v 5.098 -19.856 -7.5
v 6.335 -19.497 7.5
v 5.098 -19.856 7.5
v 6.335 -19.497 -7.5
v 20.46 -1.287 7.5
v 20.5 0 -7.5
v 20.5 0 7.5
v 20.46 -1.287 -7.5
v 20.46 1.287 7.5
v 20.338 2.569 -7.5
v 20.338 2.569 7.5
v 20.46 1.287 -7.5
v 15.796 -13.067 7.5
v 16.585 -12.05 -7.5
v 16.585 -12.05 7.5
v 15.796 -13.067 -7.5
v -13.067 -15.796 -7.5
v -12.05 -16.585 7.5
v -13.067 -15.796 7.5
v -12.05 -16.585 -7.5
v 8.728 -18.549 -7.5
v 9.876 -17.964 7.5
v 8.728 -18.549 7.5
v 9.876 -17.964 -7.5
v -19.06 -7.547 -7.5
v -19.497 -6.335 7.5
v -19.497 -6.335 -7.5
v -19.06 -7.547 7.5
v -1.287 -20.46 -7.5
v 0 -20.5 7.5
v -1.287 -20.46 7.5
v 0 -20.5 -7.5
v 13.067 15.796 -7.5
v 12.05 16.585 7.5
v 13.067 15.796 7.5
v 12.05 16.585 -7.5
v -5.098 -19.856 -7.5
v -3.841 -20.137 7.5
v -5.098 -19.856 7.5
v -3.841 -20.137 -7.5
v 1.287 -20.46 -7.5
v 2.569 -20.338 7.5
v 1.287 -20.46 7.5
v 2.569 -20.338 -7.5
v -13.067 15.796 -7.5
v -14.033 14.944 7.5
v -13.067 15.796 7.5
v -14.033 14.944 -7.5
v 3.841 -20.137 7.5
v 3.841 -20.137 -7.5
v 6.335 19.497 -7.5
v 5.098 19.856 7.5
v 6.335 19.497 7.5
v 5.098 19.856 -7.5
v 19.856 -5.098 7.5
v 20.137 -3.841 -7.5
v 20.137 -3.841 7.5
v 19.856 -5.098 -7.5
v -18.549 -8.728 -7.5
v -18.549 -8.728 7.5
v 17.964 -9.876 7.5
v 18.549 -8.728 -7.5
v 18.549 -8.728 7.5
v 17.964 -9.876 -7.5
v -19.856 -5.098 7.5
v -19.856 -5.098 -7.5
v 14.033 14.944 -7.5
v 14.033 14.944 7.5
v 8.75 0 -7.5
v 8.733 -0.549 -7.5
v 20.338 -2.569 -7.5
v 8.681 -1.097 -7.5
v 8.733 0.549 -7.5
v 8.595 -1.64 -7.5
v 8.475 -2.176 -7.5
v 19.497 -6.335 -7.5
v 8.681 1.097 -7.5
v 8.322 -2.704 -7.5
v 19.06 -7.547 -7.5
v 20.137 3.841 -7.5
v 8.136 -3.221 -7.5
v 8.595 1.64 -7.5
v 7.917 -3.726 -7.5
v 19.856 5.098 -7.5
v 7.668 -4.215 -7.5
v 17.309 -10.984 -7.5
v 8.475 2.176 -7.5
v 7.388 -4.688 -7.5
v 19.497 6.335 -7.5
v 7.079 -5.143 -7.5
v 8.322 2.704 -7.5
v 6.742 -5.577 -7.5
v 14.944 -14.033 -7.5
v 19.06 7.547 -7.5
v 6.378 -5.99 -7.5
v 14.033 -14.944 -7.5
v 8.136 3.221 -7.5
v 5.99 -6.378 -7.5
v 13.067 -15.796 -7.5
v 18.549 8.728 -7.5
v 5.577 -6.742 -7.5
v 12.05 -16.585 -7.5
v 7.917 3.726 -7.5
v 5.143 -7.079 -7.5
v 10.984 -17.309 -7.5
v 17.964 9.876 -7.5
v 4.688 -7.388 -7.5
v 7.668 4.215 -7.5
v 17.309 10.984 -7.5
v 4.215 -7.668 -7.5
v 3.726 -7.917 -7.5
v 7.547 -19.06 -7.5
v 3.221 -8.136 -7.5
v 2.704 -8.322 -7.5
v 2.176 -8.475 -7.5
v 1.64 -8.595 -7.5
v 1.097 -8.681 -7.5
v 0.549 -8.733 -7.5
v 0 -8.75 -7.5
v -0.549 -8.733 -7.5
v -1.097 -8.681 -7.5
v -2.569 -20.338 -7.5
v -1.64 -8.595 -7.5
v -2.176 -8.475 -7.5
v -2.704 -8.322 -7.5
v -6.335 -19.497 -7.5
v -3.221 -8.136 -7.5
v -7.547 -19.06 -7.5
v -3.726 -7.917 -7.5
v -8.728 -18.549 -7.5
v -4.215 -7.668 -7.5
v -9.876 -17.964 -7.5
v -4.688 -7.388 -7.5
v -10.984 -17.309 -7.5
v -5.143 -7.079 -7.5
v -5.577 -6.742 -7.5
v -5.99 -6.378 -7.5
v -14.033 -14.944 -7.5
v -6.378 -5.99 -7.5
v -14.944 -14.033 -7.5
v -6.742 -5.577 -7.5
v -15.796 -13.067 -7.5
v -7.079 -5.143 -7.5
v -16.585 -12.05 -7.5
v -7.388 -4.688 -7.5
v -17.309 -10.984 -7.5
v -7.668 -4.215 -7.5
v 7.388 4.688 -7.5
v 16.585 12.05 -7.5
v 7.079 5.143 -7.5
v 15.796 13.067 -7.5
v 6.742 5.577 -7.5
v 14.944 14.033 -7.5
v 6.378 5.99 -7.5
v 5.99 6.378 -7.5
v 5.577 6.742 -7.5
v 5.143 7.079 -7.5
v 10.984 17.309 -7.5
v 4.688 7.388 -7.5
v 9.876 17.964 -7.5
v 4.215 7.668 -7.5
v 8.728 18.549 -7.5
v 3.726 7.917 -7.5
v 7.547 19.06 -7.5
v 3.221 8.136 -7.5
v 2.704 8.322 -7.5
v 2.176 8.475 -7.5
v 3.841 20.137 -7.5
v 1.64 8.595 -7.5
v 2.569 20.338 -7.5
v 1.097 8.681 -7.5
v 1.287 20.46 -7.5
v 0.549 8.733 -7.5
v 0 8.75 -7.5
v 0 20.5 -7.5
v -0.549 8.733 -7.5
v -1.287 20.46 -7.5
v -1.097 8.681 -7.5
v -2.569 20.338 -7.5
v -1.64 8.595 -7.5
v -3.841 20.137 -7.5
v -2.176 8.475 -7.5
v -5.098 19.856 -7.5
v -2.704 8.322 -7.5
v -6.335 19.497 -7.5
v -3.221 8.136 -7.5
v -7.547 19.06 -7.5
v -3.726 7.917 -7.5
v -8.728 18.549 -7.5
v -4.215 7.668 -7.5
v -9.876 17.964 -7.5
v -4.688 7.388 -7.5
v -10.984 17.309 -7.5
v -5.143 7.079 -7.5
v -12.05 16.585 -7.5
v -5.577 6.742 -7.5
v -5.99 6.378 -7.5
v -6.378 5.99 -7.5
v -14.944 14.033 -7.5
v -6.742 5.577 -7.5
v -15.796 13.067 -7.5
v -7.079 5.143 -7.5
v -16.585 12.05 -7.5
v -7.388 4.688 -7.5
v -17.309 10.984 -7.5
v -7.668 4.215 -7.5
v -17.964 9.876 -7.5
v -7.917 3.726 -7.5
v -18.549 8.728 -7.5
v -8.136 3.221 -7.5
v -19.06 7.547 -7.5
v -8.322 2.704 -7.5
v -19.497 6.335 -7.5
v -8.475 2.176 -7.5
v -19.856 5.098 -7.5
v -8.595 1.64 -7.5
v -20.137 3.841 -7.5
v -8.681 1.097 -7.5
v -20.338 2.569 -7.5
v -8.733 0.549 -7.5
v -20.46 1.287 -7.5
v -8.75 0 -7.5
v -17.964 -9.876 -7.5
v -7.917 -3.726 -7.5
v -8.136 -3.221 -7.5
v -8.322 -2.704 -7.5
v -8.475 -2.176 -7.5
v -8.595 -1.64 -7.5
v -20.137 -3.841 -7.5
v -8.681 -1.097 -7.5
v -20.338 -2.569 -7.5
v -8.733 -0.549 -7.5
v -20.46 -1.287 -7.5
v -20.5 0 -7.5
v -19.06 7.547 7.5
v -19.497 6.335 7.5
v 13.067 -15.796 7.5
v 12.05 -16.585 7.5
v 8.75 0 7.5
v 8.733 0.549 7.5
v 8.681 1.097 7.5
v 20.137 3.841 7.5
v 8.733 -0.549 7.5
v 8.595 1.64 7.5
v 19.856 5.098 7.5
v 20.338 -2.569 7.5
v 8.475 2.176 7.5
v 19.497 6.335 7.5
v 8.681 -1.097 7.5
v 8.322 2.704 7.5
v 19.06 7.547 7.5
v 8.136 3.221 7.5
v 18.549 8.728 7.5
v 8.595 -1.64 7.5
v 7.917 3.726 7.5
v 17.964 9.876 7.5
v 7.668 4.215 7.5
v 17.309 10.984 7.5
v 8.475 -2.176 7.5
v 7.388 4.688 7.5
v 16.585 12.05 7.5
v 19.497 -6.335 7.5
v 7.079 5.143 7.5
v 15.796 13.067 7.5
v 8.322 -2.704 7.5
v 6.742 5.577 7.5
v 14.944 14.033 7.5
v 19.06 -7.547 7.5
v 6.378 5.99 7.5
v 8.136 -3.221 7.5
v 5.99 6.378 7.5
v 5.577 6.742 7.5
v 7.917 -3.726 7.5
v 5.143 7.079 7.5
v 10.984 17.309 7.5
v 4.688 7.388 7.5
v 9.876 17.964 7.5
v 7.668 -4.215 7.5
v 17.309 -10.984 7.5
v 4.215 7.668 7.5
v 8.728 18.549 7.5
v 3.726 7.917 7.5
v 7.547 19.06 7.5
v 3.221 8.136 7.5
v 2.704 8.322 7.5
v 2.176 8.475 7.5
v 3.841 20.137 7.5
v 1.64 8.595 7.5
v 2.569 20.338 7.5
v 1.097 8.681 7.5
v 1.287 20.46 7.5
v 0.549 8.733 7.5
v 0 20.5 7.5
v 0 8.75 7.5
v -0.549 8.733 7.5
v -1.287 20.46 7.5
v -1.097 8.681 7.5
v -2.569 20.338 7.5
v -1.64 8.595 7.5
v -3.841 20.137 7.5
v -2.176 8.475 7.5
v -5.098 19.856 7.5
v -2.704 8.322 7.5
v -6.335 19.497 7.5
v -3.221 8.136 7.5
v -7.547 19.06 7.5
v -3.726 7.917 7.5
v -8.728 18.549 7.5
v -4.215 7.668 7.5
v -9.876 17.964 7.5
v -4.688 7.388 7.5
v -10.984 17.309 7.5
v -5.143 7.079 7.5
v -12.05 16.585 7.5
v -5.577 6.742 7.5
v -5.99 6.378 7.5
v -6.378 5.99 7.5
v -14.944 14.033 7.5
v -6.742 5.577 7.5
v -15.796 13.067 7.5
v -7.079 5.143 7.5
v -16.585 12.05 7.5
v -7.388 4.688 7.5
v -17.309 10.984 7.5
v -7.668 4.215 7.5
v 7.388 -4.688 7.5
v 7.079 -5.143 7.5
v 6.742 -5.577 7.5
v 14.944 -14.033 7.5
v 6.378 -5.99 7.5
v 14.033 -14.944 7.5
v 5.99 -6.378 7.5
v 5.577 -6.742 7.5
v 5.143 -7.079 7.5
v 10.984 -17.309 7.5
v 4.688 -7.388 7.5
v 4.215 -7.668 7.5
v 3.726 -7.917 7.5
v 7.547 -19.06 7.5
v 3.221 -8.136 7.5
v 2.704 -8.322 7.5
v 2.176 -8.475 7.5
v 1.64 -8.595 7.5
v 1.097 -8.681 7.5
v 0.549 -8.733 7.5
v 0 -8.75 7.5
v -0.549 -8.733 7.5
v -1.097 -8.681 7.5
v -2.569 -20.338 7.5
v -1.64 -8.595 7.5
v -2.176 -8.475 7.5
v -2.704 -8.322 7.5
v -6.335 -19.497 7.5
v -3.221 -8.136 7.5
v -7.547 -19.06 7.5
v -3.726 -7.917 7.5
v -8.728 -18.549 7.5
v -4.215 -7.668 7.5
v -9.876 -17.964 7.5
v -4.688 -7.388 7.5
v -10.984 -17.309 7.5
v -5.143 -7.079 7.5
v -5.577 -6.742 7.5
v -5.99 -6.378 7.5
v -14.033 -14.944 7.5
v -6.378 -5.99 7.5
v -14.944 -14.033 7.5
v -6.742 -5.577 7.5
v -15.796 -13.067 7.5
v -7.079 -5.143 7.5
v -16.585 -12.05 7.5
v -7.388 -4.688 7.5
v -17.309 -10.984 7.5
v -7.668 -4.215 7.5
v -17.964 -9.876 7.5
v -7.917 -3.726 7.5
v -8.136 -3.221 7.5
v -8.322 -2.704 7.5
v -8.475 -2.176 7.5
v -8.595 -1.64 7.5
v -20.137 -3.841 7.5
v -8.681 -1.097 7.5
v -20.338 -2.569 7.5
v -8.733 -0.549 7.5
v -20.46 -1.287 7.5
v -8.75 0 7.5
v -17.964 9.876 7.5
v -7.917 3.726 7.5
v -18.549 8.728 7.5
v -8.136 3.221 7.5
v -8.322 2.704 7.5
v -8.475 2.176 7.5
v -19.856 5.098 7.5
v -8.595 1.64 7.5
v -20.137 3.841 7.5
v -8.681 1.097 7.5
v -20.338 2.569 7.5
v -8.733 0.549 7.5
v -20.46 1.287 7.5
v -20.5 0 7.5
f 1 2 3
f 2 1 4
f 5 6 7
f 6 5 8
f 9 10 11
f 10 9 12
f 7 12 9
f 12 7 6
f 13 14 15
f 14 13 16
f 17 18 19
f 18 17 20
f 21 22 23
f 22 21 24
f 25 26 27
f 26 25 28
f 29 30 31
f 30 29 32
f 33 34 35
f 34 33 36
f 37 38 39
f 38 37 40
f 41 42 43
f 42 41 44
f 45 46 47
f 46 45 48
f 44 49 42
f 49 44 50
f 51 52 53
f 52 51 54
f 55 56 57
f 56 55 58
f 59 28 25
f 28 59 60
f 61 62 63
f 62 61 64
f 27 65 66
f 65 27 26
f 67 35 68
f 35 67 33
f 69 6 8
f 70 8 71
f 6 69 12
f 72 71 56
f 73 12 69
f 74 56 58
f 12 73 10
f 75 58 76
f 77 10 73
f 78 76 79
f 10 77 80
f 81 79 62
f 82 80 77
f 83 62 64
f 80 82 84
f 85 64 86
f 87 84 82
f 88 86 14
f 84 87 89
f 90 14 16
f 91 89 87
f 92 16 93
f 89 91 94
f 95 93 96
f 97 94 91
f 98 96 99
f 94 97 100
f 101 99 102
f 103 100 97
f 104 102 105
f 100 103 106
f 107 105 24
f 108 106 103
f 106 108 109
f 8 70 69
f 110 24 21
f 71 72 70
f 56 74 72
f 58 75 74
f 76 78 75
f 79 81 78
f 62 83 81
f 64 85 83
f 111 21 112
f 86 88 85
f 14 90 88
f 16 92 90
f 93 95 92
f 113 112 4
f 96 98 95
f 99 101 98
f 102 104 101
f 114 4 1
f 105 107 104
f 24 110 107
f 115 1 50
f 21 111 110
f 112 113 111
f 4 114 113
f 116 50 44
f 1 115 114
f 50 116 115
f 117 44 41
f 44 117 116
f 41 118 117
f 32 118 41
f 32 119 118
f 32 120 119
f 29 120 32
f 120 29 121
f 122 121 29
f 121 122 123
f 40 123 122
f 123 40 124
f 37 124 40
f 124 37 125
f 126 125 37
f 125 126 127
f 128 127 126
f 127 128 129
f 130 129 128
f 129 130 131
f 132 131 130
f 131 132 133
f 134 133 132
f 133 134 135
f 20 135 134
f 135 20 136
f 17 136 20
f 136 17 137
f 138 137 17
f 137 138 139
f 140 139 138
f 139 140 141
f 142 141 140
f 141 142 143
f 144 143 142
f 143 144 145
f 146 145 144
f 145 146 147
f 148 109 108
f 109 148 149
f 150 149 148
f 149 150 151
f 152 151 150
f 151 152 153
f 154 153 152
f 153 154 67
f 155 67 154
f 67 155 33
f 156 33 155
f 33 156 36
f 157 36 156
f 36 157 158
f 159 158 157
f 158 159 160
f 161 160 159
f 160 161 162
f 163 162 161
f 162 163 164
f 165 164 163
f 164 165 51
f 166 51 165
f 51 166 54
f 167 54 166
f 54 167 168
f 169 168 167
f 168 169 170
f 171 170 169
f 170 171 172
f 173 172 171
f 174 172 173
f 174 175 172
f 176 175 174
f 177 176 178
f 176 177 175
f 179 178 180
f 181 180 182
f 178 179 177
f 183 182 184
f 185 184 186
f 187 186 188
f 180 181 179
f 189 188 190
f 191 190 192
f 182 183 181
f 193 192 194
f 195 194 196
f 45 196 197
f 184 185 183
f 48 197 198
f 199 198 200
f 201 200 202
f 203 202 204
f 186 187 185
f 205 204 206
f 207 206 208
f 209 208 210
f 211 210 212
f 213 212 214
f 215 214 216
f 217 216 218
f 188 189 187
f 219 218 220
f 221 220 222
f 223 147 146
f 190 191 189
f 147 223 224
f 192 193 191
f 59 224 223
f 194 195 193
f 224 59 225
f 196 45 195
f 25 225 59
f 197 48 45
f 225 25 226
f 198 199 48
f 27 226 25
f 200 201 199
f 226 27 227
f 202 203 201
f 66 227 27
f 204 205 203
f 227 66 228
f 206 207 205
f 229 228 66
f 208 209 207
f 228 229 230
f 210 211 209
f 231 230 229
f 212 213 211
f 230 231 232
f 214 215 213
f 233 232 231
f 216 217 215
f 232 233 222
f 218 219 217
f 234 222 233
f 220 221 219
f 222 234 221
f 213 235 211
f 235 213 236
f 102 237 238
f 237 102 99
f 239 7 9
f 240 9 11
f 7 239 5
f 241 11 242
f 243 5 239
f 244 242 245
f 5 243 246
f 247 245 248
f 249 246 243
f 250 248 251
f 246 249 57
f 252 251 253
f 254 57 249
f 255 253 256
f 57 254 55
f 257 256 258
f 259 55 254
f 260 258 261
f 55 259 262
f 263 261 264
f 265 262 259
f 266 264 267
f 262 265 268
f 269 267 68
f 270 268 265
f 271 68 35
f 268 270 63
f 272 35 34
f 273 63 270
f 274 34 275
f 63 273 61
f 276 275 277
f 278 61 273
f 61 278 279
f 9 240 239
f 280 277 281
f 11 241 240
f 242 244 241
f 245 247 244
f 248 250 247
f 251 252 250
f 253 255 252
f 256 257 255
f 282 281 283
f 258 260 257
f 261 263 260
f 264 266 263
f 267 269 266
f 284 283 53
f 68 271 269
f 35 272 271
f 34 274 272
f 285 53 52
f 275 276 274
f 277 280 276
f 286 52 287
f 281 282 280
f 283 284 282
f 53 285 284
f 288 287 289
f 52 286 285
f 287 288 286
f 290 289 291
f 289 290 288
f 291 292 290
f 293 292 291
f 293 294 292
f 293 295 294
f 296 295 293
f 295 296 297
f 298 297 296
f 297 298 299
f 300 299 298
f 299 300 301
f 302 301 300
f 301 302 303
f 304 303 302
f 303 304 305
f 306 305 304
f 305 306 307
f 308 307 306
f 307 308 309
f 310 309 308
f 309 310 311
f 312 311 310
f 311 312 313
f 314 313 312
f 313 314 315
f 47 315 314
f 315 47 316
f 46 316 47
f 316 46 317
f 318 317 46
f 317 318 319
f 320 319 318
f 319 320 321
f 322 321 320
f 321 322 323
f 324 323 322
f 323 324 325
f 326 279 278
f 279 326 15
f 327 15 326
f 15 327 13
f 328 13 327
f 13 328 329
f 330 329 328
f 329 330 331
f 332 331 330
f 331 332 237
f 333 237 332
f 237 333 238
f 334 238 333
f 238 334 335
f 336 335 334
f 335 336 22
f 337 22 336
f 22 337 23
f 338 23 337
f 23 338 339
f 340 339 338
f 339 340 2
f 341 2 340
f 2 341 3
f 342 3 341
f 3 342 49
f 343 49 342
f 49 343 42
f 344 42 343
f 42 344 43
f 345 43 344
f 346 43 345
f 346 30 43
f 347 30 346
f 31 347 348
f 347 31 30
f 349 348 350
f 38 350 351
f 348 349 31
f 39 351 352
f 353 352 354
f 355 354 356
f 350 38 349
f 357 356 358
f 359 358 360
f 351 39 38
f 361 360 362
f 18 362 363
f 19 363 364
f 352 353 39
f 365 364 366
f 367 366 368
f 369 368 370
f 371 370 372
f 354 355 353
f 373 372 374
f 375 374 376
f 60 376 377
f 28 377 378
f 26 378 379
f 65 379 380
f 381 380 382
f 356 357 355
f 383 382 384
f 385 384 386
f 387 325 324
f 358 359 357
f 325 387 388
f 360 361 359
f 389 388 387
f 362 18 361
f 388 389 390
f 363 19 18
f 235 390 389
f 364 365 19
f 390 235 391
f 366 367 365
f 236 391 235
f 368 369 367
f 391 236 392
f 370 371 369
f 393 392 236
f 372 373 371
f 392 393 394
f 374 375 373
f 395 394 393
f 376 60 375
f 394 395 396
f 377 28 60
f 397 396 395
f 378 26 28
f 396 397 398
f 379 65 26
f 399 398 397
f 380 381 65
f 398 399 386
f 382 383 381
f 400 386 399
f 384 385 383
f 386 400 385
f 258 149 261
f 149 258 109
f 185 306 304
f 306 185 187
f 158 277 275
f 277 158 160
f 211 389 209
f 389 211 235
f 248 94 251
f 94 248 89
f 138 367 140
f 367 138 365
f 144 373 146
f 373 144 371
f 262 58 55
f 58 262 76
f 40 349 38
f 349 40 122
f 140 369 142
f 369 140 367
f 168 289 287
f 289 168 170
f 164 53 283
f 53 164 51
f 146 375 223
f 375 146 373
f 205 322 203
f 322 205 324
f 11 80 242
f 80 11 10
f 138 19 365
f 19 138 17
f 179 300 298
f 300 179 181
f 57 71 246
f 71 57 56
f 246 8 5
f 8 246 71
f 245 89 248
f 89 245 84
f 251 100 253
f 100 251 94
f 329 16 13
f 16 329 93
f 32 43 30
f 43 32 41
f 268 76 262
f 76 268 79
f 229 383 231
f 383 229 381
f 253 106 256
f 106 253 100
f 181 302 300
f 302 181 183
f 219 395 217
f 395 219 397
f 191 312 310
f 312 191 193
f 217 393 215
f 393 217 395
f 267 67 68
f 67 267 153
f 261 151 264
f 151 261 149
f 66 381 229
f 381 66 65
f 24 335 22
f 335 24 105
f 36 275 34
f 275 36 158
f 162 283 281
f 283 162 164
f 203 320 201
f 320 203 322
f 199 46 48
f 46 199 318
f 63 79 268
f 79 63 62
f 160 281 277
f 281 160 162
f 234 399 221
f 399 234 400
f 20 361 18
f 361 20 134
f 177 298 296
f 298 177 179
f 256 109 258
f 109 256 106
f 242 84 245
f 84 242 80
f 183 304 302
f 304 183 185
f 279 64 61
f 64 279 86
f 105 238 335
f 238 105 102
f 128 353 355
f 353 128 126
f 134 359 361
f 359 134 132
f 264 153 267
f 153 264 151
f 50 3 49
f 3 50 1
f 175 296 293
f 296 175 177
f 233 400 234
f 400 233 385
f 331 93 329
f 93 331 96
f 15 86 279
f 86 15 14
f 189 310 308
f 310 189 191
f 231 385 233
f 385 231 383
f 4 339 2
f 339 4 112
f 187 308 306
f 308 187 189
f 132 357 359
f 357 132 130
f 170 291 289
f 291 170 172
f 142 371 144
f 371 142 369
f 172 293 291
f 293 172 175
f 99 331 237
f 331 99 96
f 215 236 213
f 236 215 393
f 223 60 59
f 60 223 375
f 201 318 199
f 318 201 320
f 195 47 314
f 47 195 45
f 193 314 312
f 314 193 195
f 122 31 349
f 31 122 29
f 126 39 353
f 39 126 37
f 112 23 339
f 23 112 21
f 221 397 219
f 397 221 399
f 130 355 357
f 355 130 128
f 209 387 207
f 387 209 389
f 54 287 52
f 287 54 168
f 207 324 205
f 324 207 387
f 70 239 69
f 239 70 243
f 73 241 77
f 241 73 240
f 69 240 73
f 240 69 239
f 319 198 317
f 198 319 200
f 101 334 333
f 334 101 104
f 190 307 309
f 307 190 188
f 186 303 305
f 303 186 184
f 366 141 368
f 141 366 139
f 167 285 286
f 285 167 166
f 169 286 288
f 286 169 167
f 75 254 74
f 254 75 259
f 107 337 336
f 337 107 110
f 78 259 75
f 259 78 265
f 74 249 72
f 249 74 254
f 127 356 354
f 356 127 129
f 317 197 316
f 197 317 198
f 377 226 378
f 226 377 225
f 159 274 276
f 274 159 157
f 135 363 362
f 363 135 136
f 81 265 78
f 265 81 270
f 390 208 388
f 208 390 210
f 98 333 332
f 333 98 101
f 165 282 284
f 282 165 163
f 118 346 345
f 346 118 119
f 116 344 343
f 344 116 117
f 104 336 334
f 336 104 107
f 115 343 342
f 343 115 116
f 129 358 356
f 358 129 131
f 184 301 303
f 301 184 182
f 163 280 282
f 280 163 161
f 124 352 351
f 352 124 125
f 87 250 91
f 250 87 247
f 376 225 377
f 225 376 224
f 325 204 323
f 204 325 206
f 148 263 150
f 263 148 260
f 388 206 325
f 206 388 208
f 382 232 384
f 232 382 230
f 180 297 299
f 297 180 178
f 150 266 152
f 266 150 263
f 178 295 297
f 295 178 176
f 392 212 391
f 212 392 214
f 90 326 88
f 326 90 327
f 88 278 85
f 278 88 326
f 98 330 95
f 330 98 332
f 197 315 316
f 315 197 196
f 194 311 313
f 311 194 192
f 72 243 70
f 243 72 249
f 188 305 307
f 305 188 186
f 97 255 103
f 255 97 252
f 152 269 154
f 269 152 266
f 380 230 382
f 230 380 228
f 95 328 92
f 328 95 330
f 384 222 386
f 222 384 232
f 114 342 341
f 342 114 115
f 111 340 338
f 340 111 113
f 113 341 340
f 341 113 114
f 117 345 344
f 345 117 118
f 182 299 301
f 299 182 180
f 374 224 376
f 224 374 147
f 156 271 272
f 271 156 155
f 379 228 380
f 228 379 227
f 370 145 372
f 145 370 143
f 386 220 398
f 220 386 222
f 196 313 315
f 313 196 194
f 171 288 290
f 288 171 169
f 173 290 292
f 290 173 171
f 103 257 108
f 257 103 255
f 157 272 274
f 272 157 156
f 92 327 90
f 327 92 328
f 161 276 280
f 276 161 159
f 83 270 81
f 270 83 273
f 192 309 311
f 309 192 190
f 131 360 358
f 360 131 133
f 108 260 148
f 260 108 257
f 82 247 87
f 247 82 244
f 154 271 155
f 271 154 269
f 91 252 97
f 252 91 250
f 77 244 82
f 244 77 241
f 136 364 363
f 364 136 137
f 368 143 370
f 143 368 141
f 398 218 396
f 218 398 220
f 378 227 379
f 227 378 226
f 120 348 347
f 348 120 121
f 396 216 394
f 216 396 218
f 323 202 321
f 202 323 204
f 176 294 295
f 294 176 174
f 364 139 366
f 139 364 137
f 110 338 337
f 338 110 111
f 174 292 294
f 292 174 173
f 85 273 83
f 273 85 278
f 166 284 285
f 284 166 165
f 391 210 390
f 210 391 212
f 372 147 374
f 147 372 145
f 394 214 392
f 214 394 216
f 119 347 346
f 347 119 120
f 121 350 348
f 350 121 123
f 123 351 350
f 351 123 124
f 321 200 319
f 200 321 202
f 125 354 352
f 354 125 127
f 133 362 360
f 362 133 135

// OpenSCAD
$fn = 100;
difference()
{
  cylinder(h = 15, r = 20.5, center = true);
  cylinder(h = 15.03, r = 8.75, center = true);
}
